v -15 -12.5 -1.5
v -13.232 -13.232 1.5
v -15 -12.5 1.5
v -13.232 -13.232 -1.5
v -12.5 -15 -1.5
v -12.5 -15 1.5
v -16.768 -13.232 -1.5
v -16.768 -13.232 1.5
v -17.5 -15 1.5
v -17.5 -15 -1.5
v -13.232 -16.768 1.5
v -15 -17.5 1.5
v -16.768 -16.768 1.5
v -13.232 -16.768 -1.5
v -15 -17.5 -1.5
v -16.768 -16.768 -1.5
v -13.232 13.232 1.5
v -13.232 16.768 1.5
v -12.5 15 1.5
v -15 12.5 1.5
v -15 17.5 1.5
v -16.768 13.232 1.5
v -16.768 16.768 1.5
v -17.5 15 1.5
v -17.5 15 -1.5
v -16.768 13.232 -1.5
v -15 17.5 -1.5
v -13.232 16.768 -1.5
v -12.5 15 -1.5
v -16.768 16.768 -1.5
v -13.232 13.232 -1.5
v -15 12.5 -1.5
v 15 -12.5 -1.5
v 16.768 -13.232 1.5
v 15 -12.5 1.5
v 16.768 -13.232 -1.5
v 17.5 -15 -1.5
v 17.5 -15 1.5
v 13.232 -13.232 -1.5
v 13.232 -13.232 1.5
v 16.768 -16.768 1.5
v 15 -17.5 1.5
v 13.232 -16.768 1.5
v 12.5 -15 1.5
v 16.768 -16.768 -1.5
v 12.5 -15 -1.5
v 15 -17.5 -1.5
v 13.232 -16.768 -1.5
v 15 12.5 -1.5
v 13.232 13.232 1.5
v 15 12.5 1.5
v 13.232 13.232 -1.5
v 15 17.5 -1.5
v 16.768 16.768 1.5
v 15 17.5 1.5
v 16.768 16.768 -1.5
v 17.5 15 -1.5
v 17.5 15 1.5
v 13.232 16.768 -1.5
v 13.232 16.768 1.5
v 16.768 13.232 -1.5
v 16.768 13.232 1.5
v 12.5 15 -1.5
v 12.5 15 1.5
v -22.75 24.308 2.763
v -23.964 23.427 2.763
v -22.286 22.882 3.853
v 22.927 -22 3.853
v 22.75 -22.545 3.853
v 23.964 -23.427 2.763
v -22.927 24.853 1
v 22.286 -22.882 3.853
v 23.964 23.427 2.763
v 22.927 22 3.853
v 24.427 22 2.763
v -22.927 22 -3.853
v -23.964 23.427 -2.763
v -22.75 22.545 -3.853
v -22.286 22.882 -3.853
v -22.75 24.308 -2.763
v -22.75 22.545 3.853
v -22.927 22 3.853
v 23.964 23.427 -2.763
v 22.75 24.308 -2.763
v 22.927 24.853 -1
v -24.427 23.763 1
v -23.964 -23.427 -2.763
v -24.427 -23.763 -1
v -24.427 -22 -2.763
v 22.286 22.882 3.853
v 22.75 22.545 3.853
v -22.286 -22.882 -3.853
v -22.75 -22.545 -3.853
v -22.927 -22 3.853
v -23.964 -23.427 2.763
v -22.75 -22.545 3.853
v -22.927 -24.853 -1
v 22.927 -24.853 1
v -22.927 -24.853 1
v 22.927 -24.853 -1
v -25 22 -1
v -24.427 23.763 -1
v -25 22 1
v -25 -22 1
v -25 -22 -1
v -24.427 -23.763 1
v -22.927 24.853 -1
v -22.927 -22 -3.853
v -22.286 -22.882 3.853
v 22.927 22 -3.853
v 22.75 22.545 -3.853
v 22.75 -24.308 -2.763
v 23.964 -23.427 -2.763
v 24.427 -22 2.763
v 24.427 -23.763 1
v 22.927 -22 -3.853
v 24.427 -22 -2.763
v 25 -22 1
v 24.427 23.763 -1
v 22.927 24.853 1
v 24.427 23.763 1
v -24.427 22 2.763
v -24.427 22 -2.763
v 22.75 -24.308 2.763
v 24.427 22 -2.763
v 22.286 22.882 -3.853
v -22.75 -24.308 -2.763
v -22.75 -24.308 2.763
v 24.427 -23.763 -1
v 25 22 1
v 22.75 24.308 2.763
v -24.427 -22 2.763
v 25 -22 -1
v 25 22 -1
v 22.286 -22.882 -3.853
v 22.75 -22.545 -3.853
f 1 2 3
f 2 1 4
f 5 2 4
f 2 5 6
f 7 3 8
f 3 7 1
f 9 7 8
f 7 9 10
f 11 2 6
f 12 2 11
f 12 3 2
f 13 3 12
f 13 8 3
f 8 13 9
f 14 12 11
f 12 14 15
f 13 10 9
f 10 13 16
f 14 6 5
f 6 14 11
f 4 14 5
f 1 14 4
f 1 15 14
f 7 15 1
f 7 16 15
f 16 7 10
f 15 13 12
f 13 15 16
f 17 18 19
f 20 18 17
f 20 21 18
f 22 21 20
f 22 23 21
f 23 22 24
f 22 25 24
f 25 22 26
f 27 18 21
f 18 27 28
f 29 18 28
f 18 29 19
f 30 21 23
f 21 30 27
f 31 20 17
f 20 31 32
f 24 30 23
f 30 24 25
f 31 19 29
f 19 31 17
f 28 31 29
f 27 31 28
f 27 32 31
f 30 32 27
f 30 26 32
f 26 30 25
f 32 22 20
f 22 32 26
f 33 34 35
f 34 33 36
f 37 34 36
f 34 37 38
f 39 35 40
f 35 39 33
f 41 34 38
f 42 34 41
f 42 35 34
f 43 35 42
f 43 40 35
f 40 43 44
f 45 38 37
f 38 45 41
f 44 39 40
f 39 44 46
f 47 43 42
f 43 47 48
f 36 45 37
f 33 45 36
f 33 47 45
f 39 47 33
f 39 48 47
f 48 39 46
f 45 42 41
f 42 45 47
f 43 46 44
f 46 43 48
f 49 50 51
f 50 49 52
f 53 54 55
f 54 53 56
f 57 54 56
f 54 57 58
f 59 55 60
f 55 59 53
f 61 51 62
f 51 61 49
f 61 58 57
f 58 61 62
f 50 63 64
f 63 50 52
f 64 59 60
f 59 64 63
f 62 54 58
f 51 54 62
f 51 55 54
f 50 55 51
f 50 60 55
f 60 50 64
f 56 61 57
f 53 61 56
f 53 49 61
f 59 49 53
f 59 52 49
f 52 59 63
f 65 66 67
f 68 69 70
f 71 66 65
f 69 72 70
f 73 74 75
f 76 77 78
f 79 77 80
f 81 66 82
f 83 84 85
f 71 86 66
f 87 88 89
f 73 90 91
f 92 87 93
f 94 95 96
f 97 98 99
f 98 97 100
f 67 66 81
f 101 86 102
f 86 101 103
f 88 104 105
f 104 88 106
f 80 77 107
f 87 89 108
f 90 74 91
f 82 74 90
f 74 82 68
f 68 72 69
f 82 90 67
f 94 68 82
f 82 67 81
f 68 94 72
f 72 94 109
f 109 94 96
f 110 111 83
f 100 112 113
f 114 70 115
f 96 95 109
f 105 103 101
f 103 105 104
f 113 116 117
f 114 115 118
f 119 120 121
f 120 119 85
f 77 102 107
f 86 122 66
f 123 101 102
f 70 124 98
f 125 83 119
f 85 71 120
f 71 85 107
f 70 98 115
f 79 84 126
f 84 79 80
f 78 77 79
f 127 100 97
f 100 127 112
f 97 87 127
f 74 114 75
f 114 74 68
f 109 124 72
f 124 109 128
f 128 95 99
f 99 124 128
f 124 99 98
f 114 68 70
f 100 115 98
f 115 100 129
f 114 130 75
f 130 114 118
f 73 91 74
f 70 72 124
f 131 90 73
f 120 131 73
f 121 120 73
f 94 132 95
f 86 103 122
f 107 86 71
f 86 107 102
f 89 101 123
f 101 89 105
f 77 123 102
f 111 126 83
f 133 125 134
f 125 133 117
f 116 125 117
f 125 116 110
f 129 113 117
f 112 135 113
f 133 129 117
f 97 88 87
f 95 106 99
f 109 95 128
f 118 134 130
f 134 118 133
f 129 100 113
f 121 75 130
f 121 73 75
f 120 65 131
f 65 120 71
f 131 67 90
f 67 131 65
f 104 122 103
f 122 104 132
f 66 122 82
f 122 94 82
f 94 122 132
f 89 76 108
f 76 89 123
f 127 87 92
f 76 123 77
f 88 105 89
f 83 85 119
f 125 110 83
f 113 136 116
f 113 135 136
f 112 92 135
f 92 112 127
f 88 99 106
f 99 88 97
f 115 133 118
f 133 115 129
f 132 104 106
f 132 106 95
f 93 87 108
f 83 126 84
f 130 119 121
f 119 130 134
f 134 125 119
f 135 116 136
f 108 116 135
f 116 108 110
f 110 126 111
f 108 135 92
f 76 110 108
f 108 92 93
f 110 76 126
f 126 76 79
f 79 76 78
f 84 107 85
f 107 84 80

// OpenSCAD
// Parameters for the flange plate
flange_plate_size = 50; // Length and width of the square plate
flange_plate_thickness = 2; // Adjusted thickness of the plate to match the original model
hole_diameter = 5; // Diameter of the bolt holes
hole_spacing = 30; // Distance between the centers of the holes
edge_radius = 3; // Increased radius for rounding the edges of the flange plate to match the original design

// Function to create a flange plate
module flange_plate() {
    difference() {
        // Base square plate with rounded edges
        minkowski() {
            cube([flange_plate_size - edge_radius * 2, flange_plate_size - edge_radius * 2, flange_plate_thickness], center = true);
            sphere(r = edge_radius);
        }
        
        // Bolt holes
        for (x = [-hole_spacing/2, hole_spacing/2]) {
            for (y = [-hole_spacing/2, hole_spacing/2]) {
                translate([x, y, 0])
                    cylinder(r = hole_diameter/2, h = flange_plate_thickness + 1, center = true);
            }
        }
    }
}

// Render the flange plate
flange_plate();
